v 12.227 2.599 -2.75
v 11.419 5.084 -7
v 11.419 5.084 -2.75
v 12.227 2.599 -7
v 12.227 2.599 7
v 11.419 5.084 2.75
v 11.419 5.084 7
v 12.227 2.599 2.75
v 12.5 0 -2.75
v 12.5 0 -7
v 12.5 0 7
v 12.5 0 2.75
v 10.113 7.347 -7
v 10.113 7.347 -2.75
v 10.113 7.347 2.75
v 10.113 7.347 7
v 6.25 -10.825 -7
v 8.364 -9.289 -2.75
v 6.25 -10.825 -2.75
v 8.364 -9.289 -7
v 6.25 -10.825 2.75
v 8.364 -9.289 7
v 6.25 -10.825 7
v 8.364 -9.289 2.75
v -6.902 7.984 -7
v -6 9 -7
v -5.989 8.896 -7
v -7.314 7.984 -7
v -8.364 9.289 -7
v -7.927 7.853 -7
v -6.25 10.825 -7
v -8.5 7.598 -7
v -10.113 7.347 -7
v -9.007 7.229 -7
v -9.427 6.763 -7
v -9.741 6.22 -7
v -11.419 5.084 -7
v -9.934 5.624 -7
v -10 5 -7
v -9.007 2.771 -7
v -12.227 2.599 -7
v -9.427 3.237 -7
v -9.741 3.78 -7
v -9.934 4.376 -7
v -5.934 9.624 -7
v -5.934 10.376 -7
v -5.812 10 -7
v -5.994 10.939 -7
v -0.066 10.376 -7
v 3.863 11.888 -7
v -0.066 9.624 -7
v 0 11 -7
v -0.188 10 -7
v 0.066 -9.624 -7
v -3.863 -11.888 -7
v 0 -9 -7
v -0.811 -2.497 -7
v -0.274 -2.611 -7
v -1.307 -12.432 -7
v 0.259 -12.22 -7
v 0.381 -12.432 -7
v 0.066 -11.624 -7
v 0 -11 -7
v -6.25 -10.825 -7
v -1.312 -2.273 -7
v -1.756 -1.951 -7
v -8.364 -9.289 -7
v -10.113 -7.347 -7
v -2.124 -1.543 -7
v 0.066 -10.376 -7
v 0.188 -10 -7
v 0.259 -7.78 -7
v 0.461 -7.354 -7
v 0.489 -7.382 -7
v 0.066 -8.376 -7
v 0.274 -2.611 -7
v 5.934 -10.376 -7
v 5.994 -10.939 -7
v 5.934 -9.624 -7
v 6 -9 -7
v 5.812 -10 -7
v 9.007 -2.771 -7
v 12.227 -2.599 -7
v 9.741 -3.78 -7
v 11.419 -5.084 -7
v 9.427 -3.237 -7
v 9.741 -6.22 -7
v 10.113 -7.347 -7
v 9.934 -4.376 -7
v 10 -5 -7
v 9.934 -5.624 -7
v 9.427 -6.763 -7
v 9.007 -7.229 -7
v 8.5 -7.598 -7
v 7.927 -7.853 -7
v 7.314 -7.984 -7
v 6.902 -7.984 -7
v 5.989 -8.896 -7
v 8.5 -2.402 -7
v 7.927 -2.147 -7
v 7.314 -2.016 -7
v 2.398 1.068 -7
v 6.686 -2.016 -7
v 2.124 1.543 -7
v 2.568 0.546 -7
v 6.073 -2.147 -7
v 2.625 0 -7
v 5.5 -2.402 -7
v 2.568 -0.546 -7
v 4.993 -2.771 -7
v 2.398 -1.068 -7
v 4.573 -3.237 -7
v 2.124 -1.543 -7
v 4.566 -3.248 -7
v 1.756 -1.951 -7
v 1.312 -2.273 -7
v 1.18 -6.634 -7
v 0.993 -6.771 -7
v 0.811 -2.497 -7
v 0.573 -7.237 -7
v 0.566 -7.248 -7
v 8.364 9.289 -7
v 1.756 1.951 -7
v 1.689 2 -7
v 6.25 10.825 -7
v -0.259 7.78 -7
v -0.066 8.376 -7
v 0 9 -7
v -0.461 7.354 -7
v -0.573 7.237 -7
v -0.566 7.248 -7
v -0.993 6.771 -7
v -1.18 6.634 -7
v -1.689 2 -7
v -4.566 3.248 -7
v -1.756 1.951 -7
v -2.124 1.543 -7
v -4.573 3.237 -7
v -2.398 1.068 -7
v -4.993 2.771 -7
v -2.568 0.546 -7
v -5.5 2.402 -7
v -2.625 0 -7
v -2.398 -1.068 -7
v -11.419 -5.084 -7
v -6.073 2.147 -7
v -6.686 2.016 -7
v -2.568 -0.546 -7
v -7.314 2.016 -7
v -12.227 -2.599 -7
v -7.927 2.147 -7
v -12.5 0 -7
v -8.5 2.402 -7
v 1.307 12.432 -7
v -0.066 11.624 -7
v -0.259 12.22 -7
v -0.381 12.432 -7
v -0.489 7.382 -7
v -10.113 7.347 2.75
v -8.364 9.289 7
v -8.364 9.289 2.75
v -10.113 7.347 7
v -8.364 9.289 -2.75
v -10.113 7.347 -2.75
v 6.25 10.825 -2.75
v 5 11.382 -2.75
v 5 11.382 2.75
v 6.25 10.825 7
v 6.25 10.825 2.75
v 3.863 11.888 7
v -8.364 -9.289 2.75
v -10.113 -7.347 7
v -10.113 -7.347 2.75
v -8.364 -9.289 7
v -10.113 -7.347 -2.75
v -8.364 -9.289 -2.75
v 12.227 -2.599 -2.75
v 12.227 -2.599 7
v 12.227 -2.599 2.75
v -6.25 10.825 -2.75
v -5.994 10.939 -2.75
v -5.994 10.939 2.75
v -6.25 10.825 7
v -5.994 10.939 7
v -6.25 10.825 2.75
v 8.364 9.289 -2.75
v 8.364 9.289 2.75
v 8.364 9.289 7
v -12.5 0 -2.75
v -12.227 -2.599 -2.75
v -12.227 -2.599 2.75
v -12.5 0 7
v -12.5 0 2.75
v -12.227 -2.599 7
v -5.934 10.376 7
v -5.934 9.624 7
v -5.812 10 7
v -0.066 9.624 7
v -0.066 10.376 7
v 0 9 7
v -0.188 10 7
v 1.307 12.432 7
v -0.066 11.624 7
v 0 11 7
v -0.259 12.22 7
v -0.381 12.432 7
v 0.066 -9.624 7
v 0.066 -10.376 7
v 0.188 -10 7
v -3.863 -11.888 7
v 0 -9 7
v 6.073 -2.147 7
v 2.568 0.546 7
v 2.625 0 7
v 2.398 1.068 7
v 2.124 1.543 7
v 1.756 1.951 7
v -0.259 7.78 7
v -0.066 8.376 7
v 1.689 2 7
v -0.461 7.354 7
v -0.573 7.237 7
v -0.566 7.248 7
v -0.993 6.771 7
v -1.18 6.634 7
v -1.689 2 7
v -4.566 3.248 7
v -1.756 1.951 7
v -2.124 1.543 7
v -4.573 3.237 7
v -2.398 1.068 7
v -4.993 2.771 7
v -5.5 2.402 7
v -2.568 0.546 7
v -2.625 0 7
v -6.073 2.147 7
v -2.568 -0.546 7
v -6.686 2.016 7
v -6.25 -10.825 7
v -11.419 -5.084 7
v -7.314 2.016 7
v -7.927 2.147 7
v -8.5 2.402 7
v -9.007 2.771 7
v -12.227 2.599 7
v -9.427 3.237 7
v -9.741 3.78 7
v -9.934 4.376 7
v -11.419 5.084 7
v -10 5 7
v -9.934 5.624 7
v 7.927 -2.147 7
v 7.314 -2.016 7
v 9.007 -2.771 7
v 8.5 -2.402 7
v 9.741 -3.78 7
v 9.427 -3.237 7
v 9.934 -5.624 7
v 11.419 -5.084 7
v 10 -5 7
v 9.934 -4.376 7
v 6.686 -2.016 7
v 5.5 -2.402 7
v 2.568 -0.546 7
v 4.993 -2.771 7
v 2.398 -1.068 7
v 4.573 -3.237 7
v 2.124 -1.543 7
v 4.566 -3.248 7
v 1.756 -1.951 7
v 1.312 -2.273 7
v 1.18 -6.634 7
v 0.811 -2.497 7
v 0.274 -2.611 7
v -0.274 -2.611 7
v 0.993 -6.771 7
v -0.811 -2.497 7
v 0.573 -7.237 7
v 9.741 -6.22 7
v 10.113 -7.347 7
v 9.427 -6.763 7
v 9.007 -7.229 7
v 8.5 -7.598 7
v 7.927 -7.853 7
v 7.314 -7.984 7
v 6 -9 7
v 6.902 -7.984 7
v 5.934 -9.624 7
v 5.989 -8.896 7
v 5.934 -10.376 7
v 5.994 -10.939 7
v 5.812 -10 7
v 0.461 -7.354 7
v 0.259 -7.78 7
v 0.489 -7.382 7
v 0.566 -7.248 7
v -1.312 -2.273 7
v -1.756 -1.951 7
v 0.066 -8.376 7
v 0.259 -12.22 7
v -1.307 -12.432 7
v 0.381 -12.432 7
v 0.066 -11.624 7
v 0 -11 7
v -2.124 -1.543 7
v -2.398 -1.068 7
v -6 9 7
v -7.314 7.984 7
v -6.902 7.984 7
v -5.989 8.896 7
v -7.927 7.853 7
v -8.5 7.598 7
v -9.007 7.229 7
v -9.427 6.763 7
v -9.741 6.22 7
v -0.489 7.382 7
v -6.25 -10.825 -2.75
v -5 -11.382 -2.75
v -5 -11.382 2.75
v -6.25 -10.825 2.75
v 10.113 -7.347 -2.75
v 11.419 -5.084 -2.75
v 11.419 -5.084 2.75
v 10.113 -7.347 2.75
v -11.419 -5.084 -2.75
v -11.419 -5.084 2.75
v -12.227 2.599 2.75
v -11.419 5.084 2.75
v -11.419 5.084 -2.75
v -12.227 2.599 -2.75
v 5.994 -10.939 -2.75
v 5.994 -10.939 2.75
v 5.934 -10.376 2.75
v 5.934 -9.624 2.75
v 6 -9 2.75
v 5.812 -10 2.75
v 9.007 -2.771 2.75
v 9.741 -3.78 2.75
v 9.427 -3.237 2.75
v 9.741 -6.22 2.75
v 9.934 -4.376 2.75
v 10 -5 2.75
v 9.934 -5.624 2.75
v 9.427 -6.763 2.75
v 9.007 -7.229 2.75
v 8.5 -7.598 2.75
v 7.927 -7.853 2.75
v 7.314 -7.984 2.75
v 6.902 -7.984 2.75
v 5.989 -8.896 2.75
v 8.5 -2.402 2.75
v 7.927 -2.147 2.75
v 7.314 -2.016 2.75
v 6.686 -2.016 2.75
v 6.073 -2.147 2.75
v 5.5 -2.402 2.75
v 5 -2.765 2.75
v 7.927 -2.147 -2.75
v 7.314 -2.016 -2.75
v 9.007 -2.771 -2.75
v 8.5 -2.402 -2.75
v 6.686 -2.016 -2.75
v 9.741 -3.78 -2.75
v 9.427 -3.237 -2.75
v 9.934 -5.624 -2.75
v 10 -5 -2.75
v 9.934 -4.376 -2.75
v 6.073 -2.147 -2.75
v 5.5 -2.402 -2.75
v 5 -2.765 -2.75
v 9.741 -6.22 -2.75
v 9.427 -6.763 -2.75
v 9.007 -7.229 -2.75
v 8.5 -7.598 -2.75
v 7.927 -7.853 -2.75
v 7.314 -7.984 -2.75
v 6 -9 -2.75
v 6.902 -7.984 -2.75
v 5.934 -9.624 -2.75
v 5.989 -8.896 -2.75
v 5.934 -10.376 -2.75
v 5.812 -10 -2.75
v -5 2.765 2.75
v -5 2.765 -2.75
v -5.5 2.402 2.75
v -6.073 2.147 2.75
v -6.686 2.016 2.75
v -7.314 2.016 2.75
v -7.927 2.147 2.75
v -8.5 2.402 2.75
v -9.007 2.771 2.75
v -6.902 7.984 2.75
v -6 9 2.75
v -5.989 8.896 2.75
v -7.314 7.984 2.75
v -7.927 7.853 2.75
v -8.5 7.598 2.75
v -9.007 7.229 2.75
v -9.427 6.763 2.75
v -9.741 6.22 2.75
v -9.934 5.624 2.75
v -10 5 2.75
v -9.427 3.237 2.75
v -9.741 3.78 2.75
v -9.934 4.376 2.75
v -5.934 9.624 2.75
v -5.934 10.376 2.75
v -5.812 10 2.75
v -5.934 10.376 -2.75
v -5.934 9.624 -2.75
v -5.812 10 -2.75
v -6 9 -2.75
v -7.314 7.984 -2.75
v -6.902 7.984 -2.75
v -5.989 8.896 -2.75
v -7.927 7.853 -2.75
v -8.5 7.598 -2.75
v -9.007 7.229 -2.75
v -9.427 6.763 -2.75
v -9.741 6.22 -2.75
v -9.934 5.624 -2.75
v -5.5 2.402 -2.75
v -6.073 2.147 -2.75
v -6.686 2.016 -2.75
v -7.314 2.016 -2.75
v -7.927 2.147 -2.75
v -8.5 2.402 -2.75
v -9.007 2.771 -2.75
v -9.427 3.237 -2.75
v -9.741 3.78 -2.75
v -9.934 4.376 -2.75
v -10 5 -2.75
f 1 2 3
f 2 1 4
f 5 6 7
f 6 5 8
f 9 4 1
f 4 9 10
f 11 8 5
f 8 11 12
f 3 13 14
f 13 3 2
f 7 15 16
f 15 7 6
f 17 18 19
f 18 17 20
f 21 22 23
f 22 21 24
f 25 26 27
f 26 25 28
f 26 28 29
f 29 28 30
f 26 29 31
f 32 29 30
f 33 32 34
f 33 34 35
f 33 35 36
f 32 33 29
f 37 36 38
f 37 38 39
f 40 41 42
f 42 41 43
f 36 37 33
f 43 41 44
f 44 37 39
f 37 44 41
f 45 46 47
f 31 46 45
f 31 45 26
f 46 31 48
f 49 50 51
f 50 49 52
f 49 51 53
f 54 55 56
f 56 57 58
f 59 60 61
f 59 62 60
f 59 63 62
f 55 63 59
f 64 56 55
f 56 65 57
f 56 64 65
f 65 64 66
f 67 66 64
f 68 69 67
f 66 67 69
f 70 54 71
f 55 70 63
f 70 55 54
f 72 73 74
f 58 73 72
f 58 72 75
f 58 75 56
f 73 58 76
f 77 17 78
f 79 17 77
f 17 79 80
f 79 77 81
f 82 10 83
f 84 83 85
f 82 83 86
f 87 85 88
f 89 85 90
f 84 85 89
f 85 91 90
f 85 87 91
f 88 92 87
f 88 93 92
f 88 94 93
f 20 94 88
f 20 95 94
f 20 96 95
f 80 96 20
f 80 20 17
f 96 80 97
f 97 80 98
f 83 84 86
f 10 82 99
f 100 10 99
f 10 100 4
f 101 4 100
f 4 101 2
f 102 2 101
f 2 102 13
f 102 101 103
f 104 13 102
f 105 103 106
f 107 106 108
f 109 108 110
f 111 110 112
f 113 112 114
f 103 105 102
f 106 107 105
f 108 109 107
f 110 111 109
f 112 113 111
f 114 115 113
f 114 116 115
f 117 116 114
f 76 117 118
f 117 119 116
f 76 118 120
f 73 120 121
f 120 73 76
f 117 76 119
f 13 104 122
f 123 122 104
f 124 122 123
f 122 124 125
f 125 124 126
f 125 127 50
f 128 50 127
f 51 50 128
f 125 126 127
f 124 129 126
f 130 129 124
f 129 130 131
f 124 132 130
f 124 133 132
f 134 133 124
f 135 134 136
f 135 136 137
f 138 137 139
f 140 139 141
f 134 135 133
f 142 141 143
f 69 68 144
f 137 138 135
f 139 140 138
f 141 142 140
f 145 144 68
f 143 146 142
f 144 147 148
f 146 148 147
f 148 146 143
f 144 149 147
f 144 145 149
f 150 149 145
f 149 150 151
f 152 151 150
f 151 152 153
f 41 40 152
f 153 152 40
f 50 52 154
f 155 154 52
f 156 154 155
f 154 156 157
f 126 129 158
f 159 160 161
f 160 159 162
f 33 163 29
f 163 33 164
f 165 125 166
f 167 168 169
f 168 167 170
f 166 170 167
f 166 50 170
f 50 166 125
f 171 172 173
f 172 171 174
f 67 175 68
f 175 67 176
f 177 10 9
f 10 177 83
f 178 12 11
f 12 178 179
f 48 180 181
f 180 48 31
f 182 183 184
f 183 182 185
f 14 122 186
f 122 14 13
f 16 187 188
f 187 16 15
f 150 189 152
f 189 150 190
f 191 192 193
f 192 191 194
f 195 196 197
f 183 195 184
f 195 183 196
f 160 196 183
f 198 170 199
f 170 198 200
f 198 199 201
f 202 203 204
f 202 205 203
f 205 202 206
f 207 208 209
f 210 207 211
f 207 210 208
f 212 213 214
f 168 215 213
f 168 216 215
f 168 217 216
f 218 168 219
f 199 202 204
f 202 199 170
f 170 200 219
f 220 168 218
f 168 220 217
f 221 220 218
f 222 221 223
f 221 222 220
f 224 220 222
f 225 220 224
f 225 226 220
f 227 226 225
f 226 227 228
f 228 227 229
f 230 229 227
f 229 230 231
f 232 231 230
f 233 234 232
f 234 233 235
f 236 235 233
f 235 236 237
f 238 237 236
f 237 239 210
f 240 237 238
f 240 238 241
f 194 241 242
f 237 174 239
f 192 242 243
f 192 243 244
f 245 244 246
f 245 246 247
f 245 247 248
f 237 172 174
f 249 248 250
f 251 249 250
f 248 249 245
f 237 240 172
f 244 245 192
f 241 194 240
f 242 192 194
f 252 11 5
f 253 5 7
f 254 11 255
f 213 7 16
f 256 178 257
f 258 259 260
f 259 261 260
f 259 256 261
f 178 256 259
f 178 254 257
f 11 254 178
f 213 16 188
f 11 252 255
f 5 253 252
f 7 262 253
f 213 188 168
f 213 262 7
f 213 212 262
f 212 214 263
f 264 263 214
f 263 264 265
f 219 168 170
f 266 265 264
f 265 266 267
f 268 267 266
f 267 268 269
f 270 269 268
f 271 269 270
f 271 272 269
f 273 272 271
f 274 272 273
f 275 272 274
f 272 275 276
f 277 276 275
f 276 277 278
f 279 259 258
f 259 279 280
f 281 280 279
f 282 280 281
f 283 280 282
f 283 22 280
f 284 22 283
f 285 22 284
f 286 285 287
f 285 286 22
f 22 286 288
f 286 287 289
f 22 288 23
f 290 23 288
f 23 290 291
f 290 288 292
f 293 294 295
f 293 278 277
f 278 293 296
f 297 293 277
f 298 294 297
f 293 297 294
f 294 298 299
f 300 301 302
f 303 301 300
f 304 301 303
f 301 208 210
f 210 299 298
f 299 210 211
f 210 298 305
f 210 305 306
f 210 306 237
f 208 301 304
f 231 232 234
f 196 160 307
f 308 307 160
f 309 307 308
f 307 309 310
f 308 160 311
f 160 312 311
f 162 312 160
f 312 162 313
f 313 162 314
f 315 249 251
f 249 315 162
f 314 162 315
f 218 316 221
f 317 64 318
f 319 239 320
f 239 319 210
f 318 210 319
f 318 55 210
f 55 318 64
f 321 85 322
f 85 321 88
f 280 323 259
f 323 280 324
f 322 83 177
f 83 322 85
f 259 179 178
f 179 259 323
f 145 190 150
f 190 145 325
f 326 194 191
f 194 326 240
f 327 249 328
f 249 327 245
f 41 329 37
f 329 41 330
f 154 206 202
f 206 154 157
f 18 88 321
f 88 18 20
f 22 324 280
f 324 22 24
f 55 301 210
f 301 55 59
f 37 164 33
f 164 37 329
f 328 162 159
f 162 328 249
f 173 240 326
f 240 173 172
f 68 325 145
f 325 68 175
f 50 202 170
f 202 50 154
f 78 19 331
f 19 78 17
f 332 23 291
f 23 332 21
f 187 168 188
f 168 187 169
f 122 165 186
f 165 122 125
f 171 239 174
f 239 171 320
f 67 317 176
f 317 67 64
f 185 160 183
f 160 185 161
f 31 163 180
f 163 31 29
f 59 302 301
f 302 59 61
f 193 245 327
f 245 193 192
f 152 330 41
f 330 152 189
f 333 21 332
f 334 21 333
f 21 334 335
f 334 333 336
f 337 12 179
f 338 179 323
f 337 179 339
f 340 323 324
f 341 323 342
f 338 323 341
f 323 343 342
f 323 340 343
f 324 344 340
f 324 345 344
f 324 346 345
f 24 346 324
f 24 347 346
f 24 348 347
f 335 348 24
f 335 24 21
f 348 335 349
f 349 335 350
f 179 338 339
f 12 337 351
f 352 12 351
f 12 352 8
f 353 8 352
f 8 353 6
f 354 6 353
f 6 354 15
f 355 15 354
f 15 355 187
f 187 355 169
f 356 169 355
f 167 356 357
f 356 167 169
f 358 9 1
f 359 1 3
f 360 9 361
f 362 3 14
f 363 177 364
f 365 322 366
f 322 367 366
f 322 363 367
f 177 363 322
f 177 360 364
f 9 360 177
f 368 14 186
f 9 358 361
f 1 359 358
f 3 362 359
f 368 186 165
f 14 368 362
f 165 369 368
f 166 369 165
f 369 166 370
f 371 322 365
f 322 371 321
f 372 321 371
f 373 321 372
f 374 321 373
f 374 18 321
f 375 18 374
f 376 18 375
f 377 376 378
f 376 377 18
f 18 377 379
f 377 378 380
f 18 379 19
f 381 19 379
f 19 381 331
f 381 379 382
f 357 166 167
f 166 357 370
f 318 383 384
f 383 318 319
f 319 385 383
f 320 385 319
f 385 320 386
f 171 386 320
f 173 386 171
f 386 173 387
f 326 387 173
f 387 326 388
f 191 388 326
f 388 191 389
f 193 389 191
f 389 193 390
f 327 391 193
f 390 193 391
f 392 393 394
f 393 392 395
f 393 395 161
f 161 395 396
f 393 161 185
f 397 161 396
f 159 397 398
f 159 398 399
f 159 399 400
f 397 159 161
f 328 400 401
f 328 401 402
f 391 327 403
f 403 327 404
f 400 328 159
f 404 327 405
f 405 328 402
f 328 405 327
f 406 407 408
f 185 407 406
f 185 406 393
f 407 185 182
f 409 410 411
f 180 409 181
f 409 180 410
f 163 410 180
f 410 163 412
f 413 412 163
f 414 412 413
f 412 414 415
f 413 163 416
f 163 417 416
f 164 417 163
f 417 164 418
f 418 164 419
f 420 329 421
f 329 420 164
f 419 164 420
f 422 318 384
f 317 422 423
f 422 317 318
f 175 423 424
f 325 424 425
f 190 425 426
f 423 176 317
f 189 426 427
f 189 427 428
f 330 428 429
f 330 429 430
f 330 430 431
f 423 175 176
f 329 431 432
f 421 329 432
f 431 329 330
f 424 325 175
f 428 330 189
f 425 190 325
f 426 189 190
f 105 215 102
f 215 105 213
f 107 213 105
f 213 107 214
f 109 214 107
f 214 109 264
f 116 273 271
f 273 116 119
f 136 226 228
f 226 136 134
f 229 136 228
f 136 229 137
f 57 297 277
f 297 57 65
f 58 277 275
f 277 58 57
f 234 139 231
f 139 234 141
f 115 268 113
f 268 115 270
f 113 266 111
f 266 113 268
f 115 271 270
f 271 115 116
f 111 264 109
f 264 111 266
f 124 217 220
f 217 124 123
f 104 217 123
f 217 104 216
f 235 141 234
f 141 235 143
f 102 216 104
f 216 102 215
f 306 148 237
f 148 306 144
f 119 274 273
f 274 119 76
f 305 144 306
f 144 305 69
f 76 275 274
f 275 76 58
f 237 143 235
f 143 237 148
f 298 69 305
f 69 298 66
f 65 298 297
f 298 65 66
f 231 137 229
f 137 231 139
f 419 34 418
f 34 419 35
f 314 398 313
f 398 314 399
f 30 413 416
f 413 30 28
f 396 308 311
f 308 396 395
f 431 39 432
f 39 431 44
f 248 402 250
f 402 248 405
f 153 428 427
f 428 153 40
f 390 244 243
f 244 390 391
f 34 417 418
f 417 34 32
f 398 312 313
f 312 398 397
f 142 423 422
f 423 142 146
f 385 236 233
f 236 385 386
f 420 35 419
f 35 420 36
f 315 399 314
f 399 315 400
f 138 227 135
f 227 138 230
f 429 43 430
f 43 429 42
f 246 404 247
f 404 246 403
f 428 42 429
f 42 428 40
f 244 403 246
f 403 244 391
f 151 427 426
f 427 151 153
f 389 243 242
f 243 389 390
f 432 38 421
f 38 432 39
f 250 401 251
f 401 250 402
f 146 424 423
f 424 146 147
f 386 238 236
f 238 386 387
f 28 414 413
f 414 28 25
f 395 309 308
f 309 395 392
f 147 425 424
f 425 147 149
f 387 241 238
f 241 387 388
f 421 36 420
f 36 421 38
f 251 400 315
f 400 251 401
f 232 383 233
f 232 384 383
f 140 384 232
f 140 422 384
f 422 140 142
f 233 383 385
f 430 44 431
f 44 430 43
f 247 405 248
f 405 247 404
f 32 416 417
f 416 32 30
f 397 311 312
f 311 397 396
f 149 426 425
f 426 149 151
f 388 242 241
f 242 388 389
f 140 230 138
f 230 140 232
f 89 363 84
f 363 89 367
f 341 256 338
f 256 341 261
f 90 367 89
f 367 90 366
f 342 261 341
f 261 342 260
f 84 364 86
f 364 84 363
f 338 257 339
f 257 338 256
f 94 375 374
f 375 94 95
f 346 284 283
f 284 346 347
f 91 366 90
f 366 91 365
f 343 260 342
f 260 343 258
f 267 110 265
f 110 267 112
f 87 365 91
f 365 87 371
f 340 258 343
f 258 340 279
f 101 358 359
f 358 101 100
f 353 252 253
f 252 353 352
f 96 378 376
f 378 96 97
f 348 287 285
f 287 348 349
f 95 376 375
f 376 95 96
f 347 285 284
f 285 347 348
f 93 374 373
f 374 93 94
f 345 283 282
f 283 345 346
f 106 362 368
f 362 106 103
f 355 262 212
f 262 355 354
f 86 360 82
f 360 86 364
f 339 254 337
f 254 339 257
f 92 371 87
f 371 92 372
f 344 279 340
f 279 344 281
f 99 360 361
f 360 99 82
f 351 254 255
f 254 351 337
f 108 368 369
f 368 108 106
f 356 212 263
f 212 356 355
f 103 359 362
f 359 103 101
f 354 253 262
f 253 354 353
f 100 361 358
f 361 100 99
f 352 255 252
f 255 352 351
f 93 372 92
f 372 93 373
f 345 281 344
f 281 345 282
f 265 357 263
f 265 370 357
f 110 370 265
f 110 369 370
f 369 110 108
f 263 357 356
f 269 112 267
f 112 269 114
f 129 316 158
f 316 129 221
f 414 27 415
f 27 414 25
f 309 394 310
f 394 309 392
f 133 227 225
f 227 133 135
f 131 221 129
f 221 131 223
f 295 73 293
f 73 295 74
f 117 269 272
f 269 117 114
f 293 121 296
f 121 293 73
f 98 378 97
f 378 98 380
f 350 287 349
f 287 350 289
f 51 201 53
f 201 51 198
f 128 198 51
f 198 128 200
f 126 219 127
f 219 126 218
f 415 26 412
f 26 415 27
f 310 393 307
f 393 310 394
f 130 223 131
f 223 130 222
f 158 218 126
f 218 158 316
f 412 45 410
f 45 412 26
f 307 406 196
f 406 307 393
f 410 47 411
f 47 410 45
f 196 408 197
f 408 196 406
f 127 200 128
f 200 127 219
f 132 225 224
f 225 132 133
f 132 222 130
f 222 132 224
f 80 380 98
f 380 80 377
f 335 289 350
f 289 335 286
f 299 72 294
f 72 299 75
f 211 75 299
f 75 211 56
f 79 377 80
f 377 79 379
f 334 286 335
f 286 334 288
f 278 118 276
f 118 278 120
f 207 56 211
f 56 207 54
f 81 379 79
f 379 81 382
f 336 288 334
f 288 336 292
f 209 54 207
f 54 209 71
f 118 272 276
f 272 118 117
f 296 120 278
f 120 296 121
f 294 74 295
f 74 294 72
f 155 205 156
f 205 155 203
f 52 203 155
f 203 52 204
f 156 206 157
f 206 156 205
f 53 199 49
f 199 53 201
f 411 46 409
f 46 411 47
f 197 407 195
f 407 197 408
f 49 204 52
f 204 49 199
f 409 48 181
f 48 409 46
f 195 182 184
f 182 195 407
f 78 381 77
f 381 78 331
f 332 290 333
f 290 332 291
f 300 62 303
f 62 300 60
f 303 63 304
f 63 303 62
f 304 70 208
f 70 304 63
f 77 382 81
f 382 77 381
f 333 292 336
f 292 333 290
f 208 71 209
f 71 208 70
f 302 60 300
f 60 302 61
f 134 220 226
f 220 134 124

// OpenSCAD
difference()
{
    translate([0,0,-7])
    cylinder(14,12.5, 12.5);

    // Slits
    translate([10,0,0])
    cube([10,30, 5.5], center=true);

    translate([-10,0,0])
    cube([10,30, 5.5], center=true);
    
    
    // Shaft
    translate([0,0,-8])
    cylinder(16, 5.25/2,5.25/2);
    $fn=30;
    
    // Holder thing
    sideX1 = 7;
    sideY1 = 5;
    translate([-sideX1,sideY1,-8])
    cylinder(16, 3,3);
    
    translate([sideX1,-sideY1,-8])
    cylinder(16, 3,3);
    
    sideX2 = 4.35;
    sideY2 = 7;
    // Holder thing cube
    translate([-sideX2,sideY2,-1])
    rotate([0,0,45])
    cube([6,5,150],center=true);
    
    translate([sideX2,-sideY2,-1])
    rotate([0,0,45])
    cube([6,5,50],center=true);
    
    
    
    // Holder thing 2
    sideX3 = 3;
    sideY3 = 9;
    translate([-sideX3,sideY3,-8])
    cylinder(16, 3,3);
    
    translate([sideX3,-sideY3,-8])
    cylinder(16, 3,3);
    
    
    // Holder thing 3
    sideX4 = 3;
    sideY4 = 11;
    translate([-sideX4,sideY4,-8])
    cylinder(16, 3,3);
    
    translate([sideX4,-sideY4,-8])
    cylinder(16, 3,3);
}

// Key Hole
translate([-2,2,-7])
cube([4,1,14]);
